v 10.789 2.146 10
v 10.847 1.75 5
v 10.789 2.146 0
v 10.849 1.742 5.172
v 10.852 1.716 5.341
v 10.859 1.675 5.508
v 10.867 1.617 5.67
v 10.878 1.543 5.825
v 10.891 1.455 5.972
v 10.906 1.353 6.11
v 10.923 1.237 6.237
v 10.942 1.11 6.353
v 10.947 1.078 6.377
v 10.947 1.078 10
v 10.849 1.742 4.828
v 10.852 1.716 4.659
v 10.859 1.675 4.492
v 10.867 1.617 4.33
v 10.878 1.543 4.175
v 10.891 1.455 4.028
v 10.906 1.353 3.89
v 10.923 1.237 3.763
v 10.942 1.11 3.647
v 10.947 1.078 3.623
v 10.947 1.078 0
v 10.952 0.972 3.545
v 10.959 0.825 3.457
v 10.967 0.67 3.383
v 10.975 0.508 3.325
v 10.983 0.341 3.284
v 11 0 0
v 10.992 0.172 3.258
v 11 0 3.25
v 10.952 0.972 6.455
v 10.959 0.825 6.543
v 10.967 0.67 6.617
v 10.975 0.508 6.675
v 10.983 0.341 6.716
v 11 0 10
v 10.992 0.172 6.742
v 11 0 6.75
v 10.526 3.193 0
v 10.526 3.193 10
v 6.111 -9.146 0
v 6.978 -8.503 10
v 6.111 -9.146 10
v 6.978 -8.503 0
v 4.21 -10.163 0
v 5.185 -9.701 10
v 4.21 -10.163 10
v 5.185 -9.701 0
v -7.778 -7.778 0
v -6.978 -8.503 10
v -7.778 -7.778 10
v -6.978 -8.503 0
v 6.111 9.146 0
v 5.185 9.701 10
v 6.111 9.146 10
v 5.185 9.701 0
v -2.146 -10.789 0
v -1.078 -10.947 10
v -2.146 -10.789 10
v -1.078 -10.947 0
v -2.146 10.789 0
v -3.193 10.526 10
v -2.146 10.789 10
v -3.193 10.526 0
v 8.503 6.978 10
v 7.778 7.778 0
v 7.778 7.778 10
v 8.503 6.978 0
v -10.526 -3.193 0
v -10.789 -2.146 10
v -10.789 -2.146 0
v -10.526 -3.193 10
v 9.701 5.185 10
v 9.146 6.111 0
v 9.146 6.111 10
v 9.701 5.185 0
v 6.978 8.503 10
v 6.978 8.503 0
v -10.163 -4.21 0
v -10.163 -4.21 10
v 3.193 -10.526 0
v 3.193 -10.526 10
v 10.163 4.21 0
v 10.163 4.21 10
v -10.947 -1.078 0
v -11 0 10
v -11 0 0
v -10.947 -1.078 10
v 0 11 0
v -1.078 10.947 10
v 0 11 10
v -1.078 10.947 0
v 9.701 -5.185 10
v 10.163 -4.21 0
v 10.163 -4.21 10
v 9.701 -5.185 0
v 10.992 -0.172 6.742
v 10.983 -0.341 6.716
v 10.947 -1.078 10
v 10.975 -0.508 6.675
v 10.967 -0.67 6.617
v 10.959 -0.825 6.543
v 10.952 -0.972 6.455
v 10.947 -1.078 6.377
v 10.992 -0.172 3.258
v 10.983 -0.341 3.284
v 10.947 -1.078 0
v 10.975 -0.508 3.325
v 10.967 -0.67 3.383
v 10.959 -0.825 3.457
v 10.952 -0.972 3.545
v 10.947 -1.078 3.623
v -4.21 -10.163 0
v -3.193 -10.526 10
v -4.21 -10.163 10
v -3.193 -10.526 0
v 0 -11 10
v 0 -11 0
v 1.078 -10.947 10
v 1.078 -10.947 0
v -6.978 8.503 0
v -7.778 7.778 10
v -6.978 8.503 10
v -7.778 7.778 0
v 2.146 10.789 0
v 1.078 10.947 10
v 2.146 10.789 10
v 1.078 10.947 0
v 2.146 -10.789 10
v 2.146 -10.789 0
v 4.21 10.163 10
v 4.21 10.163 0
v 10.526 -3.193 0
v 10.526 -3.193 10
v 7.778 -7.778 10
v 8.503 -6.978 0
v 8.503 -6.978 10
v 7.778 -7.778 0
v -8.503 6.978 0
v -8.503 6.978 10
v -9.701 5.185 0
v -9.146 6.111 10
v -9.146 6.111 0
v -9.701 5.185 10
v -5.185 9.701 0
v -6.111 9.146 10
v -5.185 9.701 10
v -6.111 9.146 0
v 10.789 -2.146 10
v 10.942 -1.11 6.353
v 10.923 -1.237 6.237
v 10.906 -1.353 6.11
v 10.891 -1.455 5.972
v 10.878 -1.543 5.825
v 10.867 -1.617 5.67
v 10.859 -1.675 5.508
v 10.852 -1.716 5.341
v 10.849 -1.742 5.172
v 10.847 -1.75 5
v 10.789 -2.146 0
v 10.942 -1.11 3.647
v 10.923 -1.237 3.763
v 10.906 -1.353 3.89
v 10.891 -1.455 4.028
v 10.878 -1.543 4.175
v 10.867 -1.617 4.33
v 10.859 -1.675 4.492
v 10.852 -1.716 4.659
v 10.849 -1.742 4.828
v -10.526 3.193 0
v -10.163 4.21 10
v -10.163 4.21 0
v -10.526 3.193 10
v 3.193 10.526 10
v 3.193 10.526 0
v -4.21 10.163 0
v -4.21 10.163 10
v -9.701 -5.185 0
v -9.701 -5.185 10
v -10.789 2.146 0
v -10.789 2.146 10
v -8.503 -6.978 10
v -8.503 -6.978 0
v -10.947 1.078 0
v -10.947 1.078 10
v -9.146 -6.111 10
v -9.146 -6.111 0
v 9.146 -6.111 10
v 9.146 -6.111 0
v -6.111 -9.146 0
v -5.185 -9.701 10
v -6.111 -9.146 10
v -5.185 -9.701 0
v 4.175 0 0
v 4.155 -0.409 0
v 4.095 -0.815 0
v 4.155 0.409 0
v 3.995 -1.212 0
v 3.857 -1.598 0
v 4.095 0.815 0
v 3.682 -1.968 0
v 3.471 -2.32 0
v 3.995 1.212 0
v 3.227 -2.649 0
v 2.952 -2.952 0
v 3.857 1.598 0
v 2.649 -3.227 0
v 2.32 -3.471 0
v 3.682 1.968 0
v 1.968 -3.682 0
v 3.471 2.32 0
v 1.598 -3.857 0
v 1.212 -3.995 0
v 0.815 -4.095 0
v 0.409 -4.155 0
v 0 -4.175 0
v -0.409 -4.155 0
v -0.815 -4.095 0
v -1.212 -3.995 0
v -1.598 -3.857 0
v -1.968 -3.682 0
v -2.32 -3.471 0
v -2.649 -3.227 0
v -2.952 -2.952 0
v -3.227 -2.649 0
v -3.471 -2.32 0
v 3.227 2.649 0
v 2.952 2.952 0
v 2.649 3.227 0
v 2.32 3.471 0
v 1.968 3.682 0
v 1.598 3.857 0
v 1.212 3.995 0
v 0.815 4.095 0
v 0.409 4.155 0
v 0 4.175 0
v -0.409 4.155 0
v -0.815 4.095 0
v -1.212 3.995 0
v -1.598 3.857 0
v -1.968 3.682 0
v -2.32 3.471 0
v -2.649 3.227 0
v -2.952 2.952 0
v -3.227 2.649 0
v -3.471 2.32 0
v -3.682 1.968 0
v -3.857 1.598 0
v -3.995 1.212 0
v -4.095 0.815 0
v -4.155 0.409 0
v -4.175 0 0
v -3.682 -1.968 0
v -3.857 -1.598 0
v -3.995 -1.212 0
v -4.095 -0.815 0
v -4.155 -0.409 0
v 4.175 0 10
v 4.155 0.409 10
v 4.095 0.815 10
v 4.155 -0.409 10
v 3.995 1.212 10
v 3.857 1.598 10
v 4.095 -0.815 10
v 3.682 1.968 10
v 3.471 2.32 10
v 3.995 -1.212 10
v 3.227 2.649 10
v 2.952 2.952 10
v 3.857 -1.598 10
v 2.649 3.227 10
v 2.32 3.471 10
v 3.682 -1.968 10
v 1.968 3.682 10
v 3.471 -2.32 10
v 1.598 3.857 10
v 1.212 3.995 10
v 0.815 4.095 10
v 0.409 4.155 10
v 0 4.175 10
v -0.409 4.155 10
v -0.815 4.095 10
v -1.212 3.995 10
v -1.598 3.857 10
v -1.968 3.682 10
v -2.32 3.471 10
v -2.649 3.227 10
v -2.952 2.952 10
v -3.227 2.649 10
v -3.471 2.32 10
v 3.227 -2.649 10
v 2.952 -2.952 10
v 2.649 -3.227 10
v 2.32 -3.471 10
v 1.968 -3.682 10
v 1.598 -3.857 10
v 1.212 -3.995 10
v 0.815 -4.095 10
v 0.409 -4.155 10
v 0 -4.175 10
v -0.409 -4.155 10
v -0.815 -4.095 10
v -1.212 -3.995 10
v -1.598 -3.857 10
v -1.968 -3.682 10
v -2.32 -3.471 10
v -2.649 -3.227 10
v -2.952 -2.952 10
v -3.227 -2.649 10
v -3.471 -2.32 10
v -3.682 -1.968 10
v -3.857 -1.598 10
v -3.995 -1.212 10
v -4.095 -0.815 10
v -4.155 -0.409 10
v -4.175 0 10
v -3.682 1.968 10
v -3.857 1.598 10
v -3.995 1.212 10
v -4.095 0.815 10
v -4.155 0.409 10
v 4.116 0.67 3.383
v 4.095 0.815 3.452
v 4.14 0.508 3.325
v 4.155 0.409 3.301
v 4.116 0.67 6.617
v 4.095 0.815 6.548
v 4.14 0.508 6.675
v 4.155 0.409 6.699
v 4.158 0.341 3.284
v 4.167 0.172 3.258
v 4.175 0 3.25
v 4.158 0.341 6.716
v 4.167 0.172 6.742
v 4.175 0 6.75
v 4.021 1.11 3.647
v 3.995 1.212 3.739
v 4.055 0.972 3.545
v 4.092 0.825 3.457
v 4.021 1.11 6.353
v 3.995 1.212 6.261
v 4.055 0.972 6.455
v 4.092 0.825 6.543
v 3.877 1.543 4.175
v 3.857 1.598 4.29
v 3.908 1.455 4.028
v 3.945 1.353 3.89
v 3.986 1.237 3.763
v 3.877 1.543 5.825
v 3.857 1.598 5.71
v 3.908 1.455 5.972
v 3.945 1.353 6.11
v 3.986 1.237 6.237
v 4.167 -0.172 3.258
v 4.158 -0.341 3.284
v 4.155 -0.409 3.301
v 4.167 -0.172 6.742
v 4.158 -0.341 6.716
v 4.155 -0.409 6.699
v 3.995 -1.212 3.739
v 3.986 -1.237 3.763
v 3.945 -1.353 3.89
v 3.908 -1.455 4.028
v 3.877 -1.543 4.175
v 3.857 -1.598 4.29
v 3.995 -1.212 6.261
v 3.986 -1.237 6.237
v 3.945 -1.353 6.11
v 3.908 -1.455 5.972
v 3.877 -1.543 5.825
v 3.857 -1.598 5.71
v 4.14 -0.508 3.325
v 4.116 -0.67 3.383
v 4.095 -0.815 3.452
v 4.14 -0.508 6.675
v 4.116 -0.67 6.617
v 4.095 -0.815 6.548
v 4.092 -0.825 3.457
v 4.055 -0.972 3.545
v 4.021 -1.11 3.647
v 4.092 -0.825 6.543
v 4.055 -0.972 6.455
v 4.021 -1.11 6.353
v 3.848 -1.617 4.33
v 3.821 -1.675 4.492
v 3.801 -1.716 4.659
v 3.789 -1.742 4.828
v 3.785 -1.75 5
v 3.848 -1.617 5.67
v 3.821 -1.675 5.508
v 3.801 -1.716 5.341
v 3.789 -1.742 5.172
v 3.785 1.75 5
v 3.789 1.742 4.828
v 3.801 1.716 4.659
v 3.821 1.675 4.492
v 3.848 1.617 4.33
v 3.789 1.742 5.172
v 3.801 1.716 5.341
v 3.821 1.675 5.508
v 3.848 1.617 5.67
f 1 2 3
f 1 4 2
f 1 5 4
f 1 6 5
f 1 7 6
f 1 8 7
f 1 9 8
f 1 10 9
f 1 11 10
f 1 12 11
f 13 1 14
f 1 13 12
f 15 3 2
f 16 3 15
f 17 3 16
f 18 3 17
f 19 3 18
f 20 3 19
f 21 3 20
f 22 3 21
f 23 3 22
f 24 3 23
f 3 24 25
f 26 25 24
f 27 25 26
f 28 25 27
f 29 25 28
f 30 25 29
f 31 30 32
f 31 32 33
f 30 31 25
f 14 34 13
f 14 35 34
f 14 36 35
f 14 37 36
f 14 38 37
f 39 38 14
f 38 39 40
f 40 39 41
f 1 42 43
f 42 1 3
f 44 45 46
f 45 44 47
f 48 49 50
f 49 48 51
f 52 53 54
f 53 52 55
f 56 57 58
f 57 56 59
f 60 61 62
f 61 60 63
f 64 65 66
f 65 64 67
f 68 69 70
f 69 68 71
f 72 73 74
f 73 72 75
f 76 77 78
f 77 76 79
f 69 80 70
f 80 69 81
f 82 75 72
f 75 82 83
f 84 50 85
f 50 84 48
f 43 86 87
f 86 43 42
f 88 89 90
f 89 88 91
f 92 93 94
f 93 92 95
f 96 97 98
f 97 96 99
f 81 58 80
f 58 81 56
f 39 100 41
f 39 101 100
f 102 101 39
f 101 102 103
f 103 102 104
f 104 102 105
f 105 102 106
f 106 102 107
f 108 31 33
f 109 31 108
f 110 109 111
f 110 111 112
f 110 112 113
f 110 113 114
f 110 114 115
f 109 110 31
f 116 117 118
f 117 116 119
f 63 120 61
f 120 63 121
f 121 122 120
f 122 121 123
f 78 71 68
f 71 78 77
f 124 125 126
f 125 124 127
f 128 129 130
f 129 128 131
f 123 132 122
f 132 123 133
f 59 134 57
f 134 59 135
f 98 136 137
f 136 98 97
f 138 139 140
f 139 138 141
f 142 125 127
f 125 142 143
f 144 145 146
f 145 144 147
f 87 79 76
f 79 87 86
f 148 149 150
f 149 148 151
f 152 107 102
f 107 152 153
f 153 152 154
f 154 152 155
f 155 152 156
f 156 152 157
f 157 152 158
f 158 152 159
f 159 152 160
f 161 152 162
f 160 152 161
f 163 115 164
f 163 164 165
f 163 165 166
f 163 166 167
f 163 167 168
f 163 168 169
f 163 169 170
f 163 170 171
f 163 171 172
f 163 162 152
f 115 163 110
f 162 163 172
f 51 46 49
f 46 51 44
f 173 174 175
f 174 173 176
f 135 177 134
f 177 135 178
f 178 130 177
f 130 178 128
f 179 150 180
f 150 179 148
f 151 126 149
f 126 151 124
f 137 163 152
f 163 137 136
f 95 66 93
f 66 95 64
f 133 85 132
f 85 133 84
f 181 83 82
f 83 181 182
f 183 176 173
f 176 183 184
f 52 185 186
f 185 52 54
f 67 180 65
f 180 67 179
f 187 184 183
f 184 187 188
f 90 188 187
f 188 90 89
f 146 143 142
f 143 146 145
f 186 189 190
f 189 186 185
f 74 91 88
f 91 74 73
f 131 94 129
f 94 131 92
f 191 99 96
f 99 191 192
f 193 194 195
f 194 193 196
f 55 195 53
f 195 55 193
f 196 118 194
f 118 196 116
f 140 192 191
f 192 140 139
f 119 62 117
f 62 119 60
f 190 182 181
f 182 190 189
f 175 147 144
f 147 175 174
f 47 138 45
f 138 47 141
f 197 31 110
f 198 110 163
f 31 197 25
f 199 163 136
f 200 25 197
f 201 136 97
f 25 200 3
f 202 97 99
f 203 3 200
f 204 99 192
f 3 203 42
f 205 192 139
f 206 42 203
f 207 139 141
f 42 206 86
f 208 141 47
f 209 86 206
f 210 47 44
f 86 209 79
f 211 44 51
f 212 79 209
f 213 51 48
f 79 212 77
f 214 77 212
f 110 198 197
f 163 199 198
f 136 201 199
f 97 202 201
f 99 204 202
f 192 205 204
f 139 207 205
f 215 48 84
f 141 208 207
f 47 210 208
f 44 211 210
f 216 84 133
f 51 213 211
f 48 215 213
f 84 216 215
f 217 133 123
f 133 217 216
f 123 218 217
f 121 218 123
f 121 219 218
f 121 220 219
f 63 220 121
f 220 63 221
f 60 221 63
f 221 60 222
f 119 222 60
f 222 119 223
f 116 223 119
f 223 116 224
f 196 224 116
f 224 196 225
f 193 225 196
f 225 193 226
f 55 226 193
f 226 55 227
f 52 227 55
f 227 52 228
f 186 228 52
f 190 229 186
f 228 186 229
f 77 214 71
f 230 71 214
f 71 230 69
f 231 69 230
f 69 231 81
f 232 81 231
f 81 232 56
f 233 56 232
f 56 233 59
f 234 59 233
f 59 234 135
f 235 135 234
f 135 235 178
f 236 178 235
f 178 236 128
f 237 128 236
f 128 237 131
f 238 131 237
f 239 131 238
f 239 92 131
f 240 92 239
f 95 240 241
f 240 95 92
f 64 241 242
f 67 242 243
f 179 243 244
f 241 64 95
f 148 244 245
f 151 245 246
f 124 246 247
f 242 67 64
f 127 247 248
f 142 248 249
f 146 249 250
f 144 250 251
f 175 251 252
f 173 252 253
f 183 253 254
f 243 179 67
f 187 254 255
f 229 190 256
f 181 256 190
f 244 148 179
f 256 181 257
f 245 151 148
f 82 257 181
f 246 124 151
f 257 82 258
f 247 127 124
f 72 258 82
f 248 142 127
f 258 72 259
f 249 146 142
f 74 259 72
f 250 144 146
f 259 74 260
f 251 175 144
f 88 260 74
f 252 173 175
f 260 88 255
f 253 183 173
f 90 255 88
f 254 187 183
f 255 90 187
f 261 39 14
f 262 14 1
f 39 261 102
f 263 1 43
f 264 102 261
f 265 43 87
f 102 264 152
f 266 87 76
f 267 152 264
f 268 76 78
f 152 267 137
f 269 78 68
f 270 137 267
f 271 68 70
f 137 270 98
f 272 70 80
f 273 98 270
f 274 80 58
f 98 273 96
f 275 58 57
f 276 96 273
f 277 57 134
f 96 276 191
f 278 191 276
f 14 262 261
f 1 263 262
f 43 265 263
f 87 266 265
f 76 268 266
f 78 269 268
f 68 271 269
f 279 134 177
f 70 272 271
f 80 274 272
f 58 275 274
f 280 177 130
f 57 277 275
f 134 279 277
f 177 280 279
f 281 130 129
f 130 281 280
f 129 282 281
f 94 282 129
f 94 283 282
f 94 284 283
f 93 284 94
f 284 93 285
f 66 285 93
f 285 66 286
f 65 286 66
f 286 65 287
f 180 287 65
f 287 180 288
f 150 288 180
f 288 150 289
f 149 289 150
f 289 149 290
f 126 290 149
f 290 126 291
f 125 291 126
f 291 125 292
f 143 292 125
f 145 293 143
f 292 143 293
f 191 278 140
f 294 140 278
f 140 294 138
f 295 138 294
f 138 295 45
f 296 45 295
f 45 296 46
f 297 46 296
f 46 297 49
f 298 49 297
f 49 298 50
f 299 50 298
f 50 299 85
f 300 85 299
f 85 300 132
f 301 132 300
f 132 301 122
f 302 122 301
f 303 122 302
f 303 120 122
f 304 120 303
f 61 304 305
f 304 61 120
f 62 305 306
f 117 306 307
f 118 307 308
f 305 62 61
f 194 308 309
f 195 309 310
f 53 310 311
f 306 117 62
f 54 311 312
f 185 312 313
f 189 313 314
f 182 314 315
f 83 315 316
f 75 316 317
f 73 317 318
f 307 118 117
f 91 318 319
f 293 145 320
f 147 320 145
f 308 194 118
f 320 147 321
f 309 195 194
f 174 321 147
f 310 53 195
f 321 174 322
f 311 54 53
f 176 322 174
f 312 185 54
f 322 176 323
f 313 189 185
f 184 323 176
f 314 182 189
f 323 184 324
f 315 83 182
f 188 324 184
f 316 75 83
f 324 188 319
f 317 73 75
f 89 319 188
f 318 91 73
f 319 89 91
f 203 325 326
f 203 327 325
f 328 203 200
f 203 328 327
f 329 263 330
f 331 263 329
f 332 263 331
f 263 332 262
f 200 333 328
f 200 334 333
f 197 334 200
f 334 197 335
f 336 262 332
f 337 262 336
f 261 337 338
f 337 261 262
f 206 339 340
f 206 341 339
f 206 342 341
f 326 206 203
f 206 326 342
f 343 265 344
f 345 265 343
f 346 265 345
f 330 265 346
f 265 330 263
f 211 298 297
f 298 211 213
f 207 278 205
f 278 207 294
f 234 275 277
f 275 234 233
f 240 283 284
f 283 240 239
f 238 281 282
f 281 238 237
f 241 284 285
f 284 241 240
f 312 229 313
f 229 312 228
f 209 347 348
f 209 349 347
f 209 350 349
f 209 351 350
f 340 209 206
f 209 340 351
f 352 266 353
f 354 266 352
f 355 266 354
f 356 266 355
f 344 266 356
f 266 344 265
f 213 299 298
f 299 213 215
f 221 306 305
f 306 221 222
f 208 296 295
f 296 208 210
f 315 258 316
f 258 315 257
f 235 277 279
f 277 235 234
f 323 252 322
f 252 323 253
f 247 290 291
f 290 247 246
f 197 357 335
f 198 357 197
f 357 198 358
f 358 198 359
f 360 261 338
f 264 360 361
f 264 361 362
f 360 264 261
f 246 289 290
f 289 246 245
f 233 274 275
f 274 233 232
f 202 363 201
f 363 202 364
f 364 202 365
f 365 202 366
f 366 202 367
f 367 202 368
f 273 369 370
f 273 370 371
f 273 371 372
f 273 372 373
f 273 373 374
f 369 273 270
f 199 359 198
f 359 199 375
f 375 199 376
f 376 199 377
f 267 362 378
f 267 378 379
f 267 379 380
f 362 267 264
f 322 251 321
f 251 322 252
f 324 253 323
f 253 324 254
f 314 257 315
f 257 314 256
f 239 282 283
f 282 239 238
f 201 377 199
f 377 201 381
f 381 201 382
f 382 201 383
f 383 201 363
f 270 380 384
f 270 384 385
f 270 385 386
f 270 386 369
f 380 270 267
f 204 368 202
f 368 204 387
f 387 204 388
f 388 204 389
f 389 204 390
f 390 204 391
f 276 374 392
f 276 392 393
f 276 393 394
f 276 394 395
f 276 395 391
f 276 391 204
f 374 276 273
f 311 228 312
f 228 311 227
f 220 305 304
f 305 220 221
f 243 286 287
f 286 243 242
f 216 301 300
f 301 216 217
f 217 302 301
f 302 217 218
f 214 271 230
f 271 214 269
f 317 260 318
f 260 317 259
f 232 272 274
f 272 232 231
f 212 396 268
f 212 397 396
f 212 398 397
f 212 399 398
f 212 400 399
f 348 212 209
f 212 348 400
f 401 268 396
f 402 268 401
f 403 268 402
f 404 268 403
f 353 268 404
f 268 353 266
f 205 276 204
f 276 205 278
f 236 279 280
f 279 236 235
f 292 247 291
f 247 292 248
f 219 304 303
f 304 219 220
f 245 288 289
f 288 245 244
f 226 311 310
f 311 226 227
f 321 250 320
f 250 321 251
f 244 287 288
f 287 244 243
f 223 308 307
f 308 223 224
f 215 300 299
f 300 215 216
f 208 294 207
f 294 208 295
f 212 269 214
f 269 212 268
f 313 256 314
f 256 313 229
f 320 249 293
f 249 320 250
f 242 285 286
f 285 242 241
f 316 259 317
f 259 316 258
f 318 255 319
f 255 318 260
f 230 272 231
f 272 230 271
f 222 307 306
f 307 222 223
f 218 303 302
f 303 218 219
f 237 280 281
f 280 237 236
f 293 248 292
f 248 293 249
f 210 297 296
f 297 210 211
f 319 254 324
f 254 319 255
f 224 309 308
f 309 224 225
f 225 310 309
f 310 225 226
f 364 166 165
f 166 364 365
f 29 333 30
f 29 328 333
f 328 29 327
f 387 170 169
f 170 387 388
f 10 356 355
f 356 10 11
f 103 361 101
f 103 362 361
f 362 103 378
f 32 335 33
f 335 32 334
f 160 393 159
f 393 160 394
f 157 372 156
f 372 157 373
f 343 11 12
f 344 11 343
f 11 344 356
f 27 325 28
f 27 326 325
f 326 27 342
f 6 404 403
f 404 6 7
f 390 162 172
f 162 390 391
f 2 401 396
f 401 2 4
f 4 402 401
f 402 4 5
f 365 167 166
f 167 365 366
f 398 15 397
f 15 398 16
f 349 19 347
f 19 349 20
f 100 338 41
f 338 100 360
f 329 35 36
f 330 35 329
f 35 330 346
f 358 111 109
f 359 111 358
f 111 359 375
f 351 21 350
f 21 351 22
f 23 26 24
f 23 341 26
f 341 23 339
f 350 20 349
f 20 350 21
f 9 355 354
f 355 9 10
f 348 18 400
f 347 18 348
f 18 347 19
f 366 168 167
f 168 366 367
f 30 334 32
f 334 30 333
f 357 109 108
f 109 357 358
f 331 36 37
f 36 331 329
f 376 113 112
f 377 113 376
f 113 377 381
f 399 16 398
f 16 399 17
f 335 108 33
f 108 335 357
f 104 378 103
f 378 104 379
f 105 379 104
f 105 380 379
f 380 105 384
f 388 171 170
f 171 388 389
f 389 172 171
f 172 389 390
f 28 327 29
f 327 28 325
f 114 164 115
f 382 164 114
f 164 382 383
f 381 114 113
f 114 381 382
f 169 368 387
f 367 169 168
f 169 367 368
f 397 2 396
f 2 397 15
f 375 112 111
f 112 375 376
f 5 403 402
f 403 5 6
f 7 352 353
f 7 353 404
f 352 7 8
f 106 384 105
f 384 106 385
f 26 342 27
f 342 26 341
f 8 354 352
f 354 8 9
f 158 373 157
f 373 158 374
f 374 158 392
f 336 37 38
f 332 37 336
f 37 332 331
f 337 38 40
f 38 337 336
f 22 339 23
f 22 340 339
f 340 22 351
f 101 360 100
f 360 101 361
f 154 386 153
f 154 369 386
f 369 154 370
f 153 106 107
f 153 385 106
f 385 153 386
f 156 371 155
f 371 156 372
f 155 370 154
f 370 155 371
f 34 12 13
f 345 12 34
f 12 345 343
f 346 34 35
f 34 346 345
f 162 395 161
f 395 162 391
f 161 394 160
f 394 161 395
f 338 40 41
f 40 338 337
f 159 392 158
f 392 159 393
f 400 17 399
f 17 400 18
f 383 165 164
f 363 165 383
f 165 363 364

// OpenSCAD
// file: parameters.scad
// =============================================================================
// Gen-AU Stacked dual-stator mid-rotor copper-max mega - WOUND-AWARE (HARD GATE)
// ONE mid dual-face Halbach rotor | TWO wound pancake stators | 18 coils x180 t
// =============================================================================

wire_awg            = 26;
wire_od             = 0.45;
turns               = 180;      // +5 vs Gen-AR 175; 18x180x~0.116 ~ 376 m
fill                = 0.70;
layers_per_face     = 2;
wind_build_axial    = layers_per_face * wire_od * fill;   // 0.63
wind_build_radial   = 3 * wire_od * fill;                 // 0.945

coil_id_r           = 17.0;
coil_od_r           = 61.0;
span_deg            = 34.0;     // 9 stations x 40 deg
former_web          = 1.22;     // thinner vs AR 1.25
flange_t            = 0.60;
wall                = 1.2;
slot_w              = 2.4;
mount_hole          = 3.5;
tab_len             = 7.0;

former_bare_h       = former_web + 2 * flange_t;            // 2.42
coil_envelope_h     = former_bare_h + 2 * wind_build_axial; // 3.68

run_clear           = 0.50;
gap_spacer_h        = run_clear + wind_build_axial;         // 1.13
m2m                 = coil_envelope_h + 2 * run_clear;      // 4.68 per gap

coil_stations       = 9;        // per stator; x2 = 18 total
bay_r_in            = coil_id_r - 2.0 - wind_build_radial;
bay_r_out           = coil_od_r + 2.0 + wind_build_radial;
bay_span            = span_deg + 4.0;
bay_offset          = 2.0;
bay_depth           = former_bare_h + wind_build_axial;     // wound sits in bay
stator_back_web     = 2.0;
stator_thick        = bay_depth + stator_back_web;
stator_od           = 156.0;
shaft_clear_stator  = 38.0;
coil_mount_r        = 27.0;

large_pocket_d      = 20.3;
small_pocket_d      = 5.3;
pocket_h            = 5.2;
large_n             = 8;
R_large             = 39.0;     // tighter copper overlap vs AR R=39.5
R_small_inner       = 25.5;
R_small_mid         = 39.0;
R_small_outer       = 55.5;
carrier_od          = 154.0;
mid_carrier_thick   = 12.0;
hub_h               = 10.0;
hub_od              = 30.0;
rotor_b_offset_deg  = 22.5;

shaft_bore          = 8.35;
bearing_d           = 21.85;
bearing_h           = 7.2;
m3_clear            = 3.5;
bolt_r_inner        = 36.0;
bolt_n_inner        = 6;
flange_bolt_r       = 72.0;
flange_bolt_n       = 6;
brace_r             = 68.0;
brace_d             = 4.3;
brace_n             = 4;

spacer_pad_od       = 14.0;
spacer_pad_id       = m3_clear;
endbell_od          = 156.0;
endbell_thick       = 8.0;
endbell_shaft_clear = 10.0;

$fn = 64;
// main file
// Gen-AU shaft collar — print ×2–4
include <parameters.scad>;
$fn = 64;
od = 22; id = shaft_bore; h = 10; set_d = 3.5;
difference() {
    cylinder(d=od, h=h);
    translate([0, 0, -0.1]) cylinder(d=id, h=h + 0.2);
    translate([0, 0, h/2]) rotate([0, 90, 0]) cylinder(d=set_d, h=od);
}
